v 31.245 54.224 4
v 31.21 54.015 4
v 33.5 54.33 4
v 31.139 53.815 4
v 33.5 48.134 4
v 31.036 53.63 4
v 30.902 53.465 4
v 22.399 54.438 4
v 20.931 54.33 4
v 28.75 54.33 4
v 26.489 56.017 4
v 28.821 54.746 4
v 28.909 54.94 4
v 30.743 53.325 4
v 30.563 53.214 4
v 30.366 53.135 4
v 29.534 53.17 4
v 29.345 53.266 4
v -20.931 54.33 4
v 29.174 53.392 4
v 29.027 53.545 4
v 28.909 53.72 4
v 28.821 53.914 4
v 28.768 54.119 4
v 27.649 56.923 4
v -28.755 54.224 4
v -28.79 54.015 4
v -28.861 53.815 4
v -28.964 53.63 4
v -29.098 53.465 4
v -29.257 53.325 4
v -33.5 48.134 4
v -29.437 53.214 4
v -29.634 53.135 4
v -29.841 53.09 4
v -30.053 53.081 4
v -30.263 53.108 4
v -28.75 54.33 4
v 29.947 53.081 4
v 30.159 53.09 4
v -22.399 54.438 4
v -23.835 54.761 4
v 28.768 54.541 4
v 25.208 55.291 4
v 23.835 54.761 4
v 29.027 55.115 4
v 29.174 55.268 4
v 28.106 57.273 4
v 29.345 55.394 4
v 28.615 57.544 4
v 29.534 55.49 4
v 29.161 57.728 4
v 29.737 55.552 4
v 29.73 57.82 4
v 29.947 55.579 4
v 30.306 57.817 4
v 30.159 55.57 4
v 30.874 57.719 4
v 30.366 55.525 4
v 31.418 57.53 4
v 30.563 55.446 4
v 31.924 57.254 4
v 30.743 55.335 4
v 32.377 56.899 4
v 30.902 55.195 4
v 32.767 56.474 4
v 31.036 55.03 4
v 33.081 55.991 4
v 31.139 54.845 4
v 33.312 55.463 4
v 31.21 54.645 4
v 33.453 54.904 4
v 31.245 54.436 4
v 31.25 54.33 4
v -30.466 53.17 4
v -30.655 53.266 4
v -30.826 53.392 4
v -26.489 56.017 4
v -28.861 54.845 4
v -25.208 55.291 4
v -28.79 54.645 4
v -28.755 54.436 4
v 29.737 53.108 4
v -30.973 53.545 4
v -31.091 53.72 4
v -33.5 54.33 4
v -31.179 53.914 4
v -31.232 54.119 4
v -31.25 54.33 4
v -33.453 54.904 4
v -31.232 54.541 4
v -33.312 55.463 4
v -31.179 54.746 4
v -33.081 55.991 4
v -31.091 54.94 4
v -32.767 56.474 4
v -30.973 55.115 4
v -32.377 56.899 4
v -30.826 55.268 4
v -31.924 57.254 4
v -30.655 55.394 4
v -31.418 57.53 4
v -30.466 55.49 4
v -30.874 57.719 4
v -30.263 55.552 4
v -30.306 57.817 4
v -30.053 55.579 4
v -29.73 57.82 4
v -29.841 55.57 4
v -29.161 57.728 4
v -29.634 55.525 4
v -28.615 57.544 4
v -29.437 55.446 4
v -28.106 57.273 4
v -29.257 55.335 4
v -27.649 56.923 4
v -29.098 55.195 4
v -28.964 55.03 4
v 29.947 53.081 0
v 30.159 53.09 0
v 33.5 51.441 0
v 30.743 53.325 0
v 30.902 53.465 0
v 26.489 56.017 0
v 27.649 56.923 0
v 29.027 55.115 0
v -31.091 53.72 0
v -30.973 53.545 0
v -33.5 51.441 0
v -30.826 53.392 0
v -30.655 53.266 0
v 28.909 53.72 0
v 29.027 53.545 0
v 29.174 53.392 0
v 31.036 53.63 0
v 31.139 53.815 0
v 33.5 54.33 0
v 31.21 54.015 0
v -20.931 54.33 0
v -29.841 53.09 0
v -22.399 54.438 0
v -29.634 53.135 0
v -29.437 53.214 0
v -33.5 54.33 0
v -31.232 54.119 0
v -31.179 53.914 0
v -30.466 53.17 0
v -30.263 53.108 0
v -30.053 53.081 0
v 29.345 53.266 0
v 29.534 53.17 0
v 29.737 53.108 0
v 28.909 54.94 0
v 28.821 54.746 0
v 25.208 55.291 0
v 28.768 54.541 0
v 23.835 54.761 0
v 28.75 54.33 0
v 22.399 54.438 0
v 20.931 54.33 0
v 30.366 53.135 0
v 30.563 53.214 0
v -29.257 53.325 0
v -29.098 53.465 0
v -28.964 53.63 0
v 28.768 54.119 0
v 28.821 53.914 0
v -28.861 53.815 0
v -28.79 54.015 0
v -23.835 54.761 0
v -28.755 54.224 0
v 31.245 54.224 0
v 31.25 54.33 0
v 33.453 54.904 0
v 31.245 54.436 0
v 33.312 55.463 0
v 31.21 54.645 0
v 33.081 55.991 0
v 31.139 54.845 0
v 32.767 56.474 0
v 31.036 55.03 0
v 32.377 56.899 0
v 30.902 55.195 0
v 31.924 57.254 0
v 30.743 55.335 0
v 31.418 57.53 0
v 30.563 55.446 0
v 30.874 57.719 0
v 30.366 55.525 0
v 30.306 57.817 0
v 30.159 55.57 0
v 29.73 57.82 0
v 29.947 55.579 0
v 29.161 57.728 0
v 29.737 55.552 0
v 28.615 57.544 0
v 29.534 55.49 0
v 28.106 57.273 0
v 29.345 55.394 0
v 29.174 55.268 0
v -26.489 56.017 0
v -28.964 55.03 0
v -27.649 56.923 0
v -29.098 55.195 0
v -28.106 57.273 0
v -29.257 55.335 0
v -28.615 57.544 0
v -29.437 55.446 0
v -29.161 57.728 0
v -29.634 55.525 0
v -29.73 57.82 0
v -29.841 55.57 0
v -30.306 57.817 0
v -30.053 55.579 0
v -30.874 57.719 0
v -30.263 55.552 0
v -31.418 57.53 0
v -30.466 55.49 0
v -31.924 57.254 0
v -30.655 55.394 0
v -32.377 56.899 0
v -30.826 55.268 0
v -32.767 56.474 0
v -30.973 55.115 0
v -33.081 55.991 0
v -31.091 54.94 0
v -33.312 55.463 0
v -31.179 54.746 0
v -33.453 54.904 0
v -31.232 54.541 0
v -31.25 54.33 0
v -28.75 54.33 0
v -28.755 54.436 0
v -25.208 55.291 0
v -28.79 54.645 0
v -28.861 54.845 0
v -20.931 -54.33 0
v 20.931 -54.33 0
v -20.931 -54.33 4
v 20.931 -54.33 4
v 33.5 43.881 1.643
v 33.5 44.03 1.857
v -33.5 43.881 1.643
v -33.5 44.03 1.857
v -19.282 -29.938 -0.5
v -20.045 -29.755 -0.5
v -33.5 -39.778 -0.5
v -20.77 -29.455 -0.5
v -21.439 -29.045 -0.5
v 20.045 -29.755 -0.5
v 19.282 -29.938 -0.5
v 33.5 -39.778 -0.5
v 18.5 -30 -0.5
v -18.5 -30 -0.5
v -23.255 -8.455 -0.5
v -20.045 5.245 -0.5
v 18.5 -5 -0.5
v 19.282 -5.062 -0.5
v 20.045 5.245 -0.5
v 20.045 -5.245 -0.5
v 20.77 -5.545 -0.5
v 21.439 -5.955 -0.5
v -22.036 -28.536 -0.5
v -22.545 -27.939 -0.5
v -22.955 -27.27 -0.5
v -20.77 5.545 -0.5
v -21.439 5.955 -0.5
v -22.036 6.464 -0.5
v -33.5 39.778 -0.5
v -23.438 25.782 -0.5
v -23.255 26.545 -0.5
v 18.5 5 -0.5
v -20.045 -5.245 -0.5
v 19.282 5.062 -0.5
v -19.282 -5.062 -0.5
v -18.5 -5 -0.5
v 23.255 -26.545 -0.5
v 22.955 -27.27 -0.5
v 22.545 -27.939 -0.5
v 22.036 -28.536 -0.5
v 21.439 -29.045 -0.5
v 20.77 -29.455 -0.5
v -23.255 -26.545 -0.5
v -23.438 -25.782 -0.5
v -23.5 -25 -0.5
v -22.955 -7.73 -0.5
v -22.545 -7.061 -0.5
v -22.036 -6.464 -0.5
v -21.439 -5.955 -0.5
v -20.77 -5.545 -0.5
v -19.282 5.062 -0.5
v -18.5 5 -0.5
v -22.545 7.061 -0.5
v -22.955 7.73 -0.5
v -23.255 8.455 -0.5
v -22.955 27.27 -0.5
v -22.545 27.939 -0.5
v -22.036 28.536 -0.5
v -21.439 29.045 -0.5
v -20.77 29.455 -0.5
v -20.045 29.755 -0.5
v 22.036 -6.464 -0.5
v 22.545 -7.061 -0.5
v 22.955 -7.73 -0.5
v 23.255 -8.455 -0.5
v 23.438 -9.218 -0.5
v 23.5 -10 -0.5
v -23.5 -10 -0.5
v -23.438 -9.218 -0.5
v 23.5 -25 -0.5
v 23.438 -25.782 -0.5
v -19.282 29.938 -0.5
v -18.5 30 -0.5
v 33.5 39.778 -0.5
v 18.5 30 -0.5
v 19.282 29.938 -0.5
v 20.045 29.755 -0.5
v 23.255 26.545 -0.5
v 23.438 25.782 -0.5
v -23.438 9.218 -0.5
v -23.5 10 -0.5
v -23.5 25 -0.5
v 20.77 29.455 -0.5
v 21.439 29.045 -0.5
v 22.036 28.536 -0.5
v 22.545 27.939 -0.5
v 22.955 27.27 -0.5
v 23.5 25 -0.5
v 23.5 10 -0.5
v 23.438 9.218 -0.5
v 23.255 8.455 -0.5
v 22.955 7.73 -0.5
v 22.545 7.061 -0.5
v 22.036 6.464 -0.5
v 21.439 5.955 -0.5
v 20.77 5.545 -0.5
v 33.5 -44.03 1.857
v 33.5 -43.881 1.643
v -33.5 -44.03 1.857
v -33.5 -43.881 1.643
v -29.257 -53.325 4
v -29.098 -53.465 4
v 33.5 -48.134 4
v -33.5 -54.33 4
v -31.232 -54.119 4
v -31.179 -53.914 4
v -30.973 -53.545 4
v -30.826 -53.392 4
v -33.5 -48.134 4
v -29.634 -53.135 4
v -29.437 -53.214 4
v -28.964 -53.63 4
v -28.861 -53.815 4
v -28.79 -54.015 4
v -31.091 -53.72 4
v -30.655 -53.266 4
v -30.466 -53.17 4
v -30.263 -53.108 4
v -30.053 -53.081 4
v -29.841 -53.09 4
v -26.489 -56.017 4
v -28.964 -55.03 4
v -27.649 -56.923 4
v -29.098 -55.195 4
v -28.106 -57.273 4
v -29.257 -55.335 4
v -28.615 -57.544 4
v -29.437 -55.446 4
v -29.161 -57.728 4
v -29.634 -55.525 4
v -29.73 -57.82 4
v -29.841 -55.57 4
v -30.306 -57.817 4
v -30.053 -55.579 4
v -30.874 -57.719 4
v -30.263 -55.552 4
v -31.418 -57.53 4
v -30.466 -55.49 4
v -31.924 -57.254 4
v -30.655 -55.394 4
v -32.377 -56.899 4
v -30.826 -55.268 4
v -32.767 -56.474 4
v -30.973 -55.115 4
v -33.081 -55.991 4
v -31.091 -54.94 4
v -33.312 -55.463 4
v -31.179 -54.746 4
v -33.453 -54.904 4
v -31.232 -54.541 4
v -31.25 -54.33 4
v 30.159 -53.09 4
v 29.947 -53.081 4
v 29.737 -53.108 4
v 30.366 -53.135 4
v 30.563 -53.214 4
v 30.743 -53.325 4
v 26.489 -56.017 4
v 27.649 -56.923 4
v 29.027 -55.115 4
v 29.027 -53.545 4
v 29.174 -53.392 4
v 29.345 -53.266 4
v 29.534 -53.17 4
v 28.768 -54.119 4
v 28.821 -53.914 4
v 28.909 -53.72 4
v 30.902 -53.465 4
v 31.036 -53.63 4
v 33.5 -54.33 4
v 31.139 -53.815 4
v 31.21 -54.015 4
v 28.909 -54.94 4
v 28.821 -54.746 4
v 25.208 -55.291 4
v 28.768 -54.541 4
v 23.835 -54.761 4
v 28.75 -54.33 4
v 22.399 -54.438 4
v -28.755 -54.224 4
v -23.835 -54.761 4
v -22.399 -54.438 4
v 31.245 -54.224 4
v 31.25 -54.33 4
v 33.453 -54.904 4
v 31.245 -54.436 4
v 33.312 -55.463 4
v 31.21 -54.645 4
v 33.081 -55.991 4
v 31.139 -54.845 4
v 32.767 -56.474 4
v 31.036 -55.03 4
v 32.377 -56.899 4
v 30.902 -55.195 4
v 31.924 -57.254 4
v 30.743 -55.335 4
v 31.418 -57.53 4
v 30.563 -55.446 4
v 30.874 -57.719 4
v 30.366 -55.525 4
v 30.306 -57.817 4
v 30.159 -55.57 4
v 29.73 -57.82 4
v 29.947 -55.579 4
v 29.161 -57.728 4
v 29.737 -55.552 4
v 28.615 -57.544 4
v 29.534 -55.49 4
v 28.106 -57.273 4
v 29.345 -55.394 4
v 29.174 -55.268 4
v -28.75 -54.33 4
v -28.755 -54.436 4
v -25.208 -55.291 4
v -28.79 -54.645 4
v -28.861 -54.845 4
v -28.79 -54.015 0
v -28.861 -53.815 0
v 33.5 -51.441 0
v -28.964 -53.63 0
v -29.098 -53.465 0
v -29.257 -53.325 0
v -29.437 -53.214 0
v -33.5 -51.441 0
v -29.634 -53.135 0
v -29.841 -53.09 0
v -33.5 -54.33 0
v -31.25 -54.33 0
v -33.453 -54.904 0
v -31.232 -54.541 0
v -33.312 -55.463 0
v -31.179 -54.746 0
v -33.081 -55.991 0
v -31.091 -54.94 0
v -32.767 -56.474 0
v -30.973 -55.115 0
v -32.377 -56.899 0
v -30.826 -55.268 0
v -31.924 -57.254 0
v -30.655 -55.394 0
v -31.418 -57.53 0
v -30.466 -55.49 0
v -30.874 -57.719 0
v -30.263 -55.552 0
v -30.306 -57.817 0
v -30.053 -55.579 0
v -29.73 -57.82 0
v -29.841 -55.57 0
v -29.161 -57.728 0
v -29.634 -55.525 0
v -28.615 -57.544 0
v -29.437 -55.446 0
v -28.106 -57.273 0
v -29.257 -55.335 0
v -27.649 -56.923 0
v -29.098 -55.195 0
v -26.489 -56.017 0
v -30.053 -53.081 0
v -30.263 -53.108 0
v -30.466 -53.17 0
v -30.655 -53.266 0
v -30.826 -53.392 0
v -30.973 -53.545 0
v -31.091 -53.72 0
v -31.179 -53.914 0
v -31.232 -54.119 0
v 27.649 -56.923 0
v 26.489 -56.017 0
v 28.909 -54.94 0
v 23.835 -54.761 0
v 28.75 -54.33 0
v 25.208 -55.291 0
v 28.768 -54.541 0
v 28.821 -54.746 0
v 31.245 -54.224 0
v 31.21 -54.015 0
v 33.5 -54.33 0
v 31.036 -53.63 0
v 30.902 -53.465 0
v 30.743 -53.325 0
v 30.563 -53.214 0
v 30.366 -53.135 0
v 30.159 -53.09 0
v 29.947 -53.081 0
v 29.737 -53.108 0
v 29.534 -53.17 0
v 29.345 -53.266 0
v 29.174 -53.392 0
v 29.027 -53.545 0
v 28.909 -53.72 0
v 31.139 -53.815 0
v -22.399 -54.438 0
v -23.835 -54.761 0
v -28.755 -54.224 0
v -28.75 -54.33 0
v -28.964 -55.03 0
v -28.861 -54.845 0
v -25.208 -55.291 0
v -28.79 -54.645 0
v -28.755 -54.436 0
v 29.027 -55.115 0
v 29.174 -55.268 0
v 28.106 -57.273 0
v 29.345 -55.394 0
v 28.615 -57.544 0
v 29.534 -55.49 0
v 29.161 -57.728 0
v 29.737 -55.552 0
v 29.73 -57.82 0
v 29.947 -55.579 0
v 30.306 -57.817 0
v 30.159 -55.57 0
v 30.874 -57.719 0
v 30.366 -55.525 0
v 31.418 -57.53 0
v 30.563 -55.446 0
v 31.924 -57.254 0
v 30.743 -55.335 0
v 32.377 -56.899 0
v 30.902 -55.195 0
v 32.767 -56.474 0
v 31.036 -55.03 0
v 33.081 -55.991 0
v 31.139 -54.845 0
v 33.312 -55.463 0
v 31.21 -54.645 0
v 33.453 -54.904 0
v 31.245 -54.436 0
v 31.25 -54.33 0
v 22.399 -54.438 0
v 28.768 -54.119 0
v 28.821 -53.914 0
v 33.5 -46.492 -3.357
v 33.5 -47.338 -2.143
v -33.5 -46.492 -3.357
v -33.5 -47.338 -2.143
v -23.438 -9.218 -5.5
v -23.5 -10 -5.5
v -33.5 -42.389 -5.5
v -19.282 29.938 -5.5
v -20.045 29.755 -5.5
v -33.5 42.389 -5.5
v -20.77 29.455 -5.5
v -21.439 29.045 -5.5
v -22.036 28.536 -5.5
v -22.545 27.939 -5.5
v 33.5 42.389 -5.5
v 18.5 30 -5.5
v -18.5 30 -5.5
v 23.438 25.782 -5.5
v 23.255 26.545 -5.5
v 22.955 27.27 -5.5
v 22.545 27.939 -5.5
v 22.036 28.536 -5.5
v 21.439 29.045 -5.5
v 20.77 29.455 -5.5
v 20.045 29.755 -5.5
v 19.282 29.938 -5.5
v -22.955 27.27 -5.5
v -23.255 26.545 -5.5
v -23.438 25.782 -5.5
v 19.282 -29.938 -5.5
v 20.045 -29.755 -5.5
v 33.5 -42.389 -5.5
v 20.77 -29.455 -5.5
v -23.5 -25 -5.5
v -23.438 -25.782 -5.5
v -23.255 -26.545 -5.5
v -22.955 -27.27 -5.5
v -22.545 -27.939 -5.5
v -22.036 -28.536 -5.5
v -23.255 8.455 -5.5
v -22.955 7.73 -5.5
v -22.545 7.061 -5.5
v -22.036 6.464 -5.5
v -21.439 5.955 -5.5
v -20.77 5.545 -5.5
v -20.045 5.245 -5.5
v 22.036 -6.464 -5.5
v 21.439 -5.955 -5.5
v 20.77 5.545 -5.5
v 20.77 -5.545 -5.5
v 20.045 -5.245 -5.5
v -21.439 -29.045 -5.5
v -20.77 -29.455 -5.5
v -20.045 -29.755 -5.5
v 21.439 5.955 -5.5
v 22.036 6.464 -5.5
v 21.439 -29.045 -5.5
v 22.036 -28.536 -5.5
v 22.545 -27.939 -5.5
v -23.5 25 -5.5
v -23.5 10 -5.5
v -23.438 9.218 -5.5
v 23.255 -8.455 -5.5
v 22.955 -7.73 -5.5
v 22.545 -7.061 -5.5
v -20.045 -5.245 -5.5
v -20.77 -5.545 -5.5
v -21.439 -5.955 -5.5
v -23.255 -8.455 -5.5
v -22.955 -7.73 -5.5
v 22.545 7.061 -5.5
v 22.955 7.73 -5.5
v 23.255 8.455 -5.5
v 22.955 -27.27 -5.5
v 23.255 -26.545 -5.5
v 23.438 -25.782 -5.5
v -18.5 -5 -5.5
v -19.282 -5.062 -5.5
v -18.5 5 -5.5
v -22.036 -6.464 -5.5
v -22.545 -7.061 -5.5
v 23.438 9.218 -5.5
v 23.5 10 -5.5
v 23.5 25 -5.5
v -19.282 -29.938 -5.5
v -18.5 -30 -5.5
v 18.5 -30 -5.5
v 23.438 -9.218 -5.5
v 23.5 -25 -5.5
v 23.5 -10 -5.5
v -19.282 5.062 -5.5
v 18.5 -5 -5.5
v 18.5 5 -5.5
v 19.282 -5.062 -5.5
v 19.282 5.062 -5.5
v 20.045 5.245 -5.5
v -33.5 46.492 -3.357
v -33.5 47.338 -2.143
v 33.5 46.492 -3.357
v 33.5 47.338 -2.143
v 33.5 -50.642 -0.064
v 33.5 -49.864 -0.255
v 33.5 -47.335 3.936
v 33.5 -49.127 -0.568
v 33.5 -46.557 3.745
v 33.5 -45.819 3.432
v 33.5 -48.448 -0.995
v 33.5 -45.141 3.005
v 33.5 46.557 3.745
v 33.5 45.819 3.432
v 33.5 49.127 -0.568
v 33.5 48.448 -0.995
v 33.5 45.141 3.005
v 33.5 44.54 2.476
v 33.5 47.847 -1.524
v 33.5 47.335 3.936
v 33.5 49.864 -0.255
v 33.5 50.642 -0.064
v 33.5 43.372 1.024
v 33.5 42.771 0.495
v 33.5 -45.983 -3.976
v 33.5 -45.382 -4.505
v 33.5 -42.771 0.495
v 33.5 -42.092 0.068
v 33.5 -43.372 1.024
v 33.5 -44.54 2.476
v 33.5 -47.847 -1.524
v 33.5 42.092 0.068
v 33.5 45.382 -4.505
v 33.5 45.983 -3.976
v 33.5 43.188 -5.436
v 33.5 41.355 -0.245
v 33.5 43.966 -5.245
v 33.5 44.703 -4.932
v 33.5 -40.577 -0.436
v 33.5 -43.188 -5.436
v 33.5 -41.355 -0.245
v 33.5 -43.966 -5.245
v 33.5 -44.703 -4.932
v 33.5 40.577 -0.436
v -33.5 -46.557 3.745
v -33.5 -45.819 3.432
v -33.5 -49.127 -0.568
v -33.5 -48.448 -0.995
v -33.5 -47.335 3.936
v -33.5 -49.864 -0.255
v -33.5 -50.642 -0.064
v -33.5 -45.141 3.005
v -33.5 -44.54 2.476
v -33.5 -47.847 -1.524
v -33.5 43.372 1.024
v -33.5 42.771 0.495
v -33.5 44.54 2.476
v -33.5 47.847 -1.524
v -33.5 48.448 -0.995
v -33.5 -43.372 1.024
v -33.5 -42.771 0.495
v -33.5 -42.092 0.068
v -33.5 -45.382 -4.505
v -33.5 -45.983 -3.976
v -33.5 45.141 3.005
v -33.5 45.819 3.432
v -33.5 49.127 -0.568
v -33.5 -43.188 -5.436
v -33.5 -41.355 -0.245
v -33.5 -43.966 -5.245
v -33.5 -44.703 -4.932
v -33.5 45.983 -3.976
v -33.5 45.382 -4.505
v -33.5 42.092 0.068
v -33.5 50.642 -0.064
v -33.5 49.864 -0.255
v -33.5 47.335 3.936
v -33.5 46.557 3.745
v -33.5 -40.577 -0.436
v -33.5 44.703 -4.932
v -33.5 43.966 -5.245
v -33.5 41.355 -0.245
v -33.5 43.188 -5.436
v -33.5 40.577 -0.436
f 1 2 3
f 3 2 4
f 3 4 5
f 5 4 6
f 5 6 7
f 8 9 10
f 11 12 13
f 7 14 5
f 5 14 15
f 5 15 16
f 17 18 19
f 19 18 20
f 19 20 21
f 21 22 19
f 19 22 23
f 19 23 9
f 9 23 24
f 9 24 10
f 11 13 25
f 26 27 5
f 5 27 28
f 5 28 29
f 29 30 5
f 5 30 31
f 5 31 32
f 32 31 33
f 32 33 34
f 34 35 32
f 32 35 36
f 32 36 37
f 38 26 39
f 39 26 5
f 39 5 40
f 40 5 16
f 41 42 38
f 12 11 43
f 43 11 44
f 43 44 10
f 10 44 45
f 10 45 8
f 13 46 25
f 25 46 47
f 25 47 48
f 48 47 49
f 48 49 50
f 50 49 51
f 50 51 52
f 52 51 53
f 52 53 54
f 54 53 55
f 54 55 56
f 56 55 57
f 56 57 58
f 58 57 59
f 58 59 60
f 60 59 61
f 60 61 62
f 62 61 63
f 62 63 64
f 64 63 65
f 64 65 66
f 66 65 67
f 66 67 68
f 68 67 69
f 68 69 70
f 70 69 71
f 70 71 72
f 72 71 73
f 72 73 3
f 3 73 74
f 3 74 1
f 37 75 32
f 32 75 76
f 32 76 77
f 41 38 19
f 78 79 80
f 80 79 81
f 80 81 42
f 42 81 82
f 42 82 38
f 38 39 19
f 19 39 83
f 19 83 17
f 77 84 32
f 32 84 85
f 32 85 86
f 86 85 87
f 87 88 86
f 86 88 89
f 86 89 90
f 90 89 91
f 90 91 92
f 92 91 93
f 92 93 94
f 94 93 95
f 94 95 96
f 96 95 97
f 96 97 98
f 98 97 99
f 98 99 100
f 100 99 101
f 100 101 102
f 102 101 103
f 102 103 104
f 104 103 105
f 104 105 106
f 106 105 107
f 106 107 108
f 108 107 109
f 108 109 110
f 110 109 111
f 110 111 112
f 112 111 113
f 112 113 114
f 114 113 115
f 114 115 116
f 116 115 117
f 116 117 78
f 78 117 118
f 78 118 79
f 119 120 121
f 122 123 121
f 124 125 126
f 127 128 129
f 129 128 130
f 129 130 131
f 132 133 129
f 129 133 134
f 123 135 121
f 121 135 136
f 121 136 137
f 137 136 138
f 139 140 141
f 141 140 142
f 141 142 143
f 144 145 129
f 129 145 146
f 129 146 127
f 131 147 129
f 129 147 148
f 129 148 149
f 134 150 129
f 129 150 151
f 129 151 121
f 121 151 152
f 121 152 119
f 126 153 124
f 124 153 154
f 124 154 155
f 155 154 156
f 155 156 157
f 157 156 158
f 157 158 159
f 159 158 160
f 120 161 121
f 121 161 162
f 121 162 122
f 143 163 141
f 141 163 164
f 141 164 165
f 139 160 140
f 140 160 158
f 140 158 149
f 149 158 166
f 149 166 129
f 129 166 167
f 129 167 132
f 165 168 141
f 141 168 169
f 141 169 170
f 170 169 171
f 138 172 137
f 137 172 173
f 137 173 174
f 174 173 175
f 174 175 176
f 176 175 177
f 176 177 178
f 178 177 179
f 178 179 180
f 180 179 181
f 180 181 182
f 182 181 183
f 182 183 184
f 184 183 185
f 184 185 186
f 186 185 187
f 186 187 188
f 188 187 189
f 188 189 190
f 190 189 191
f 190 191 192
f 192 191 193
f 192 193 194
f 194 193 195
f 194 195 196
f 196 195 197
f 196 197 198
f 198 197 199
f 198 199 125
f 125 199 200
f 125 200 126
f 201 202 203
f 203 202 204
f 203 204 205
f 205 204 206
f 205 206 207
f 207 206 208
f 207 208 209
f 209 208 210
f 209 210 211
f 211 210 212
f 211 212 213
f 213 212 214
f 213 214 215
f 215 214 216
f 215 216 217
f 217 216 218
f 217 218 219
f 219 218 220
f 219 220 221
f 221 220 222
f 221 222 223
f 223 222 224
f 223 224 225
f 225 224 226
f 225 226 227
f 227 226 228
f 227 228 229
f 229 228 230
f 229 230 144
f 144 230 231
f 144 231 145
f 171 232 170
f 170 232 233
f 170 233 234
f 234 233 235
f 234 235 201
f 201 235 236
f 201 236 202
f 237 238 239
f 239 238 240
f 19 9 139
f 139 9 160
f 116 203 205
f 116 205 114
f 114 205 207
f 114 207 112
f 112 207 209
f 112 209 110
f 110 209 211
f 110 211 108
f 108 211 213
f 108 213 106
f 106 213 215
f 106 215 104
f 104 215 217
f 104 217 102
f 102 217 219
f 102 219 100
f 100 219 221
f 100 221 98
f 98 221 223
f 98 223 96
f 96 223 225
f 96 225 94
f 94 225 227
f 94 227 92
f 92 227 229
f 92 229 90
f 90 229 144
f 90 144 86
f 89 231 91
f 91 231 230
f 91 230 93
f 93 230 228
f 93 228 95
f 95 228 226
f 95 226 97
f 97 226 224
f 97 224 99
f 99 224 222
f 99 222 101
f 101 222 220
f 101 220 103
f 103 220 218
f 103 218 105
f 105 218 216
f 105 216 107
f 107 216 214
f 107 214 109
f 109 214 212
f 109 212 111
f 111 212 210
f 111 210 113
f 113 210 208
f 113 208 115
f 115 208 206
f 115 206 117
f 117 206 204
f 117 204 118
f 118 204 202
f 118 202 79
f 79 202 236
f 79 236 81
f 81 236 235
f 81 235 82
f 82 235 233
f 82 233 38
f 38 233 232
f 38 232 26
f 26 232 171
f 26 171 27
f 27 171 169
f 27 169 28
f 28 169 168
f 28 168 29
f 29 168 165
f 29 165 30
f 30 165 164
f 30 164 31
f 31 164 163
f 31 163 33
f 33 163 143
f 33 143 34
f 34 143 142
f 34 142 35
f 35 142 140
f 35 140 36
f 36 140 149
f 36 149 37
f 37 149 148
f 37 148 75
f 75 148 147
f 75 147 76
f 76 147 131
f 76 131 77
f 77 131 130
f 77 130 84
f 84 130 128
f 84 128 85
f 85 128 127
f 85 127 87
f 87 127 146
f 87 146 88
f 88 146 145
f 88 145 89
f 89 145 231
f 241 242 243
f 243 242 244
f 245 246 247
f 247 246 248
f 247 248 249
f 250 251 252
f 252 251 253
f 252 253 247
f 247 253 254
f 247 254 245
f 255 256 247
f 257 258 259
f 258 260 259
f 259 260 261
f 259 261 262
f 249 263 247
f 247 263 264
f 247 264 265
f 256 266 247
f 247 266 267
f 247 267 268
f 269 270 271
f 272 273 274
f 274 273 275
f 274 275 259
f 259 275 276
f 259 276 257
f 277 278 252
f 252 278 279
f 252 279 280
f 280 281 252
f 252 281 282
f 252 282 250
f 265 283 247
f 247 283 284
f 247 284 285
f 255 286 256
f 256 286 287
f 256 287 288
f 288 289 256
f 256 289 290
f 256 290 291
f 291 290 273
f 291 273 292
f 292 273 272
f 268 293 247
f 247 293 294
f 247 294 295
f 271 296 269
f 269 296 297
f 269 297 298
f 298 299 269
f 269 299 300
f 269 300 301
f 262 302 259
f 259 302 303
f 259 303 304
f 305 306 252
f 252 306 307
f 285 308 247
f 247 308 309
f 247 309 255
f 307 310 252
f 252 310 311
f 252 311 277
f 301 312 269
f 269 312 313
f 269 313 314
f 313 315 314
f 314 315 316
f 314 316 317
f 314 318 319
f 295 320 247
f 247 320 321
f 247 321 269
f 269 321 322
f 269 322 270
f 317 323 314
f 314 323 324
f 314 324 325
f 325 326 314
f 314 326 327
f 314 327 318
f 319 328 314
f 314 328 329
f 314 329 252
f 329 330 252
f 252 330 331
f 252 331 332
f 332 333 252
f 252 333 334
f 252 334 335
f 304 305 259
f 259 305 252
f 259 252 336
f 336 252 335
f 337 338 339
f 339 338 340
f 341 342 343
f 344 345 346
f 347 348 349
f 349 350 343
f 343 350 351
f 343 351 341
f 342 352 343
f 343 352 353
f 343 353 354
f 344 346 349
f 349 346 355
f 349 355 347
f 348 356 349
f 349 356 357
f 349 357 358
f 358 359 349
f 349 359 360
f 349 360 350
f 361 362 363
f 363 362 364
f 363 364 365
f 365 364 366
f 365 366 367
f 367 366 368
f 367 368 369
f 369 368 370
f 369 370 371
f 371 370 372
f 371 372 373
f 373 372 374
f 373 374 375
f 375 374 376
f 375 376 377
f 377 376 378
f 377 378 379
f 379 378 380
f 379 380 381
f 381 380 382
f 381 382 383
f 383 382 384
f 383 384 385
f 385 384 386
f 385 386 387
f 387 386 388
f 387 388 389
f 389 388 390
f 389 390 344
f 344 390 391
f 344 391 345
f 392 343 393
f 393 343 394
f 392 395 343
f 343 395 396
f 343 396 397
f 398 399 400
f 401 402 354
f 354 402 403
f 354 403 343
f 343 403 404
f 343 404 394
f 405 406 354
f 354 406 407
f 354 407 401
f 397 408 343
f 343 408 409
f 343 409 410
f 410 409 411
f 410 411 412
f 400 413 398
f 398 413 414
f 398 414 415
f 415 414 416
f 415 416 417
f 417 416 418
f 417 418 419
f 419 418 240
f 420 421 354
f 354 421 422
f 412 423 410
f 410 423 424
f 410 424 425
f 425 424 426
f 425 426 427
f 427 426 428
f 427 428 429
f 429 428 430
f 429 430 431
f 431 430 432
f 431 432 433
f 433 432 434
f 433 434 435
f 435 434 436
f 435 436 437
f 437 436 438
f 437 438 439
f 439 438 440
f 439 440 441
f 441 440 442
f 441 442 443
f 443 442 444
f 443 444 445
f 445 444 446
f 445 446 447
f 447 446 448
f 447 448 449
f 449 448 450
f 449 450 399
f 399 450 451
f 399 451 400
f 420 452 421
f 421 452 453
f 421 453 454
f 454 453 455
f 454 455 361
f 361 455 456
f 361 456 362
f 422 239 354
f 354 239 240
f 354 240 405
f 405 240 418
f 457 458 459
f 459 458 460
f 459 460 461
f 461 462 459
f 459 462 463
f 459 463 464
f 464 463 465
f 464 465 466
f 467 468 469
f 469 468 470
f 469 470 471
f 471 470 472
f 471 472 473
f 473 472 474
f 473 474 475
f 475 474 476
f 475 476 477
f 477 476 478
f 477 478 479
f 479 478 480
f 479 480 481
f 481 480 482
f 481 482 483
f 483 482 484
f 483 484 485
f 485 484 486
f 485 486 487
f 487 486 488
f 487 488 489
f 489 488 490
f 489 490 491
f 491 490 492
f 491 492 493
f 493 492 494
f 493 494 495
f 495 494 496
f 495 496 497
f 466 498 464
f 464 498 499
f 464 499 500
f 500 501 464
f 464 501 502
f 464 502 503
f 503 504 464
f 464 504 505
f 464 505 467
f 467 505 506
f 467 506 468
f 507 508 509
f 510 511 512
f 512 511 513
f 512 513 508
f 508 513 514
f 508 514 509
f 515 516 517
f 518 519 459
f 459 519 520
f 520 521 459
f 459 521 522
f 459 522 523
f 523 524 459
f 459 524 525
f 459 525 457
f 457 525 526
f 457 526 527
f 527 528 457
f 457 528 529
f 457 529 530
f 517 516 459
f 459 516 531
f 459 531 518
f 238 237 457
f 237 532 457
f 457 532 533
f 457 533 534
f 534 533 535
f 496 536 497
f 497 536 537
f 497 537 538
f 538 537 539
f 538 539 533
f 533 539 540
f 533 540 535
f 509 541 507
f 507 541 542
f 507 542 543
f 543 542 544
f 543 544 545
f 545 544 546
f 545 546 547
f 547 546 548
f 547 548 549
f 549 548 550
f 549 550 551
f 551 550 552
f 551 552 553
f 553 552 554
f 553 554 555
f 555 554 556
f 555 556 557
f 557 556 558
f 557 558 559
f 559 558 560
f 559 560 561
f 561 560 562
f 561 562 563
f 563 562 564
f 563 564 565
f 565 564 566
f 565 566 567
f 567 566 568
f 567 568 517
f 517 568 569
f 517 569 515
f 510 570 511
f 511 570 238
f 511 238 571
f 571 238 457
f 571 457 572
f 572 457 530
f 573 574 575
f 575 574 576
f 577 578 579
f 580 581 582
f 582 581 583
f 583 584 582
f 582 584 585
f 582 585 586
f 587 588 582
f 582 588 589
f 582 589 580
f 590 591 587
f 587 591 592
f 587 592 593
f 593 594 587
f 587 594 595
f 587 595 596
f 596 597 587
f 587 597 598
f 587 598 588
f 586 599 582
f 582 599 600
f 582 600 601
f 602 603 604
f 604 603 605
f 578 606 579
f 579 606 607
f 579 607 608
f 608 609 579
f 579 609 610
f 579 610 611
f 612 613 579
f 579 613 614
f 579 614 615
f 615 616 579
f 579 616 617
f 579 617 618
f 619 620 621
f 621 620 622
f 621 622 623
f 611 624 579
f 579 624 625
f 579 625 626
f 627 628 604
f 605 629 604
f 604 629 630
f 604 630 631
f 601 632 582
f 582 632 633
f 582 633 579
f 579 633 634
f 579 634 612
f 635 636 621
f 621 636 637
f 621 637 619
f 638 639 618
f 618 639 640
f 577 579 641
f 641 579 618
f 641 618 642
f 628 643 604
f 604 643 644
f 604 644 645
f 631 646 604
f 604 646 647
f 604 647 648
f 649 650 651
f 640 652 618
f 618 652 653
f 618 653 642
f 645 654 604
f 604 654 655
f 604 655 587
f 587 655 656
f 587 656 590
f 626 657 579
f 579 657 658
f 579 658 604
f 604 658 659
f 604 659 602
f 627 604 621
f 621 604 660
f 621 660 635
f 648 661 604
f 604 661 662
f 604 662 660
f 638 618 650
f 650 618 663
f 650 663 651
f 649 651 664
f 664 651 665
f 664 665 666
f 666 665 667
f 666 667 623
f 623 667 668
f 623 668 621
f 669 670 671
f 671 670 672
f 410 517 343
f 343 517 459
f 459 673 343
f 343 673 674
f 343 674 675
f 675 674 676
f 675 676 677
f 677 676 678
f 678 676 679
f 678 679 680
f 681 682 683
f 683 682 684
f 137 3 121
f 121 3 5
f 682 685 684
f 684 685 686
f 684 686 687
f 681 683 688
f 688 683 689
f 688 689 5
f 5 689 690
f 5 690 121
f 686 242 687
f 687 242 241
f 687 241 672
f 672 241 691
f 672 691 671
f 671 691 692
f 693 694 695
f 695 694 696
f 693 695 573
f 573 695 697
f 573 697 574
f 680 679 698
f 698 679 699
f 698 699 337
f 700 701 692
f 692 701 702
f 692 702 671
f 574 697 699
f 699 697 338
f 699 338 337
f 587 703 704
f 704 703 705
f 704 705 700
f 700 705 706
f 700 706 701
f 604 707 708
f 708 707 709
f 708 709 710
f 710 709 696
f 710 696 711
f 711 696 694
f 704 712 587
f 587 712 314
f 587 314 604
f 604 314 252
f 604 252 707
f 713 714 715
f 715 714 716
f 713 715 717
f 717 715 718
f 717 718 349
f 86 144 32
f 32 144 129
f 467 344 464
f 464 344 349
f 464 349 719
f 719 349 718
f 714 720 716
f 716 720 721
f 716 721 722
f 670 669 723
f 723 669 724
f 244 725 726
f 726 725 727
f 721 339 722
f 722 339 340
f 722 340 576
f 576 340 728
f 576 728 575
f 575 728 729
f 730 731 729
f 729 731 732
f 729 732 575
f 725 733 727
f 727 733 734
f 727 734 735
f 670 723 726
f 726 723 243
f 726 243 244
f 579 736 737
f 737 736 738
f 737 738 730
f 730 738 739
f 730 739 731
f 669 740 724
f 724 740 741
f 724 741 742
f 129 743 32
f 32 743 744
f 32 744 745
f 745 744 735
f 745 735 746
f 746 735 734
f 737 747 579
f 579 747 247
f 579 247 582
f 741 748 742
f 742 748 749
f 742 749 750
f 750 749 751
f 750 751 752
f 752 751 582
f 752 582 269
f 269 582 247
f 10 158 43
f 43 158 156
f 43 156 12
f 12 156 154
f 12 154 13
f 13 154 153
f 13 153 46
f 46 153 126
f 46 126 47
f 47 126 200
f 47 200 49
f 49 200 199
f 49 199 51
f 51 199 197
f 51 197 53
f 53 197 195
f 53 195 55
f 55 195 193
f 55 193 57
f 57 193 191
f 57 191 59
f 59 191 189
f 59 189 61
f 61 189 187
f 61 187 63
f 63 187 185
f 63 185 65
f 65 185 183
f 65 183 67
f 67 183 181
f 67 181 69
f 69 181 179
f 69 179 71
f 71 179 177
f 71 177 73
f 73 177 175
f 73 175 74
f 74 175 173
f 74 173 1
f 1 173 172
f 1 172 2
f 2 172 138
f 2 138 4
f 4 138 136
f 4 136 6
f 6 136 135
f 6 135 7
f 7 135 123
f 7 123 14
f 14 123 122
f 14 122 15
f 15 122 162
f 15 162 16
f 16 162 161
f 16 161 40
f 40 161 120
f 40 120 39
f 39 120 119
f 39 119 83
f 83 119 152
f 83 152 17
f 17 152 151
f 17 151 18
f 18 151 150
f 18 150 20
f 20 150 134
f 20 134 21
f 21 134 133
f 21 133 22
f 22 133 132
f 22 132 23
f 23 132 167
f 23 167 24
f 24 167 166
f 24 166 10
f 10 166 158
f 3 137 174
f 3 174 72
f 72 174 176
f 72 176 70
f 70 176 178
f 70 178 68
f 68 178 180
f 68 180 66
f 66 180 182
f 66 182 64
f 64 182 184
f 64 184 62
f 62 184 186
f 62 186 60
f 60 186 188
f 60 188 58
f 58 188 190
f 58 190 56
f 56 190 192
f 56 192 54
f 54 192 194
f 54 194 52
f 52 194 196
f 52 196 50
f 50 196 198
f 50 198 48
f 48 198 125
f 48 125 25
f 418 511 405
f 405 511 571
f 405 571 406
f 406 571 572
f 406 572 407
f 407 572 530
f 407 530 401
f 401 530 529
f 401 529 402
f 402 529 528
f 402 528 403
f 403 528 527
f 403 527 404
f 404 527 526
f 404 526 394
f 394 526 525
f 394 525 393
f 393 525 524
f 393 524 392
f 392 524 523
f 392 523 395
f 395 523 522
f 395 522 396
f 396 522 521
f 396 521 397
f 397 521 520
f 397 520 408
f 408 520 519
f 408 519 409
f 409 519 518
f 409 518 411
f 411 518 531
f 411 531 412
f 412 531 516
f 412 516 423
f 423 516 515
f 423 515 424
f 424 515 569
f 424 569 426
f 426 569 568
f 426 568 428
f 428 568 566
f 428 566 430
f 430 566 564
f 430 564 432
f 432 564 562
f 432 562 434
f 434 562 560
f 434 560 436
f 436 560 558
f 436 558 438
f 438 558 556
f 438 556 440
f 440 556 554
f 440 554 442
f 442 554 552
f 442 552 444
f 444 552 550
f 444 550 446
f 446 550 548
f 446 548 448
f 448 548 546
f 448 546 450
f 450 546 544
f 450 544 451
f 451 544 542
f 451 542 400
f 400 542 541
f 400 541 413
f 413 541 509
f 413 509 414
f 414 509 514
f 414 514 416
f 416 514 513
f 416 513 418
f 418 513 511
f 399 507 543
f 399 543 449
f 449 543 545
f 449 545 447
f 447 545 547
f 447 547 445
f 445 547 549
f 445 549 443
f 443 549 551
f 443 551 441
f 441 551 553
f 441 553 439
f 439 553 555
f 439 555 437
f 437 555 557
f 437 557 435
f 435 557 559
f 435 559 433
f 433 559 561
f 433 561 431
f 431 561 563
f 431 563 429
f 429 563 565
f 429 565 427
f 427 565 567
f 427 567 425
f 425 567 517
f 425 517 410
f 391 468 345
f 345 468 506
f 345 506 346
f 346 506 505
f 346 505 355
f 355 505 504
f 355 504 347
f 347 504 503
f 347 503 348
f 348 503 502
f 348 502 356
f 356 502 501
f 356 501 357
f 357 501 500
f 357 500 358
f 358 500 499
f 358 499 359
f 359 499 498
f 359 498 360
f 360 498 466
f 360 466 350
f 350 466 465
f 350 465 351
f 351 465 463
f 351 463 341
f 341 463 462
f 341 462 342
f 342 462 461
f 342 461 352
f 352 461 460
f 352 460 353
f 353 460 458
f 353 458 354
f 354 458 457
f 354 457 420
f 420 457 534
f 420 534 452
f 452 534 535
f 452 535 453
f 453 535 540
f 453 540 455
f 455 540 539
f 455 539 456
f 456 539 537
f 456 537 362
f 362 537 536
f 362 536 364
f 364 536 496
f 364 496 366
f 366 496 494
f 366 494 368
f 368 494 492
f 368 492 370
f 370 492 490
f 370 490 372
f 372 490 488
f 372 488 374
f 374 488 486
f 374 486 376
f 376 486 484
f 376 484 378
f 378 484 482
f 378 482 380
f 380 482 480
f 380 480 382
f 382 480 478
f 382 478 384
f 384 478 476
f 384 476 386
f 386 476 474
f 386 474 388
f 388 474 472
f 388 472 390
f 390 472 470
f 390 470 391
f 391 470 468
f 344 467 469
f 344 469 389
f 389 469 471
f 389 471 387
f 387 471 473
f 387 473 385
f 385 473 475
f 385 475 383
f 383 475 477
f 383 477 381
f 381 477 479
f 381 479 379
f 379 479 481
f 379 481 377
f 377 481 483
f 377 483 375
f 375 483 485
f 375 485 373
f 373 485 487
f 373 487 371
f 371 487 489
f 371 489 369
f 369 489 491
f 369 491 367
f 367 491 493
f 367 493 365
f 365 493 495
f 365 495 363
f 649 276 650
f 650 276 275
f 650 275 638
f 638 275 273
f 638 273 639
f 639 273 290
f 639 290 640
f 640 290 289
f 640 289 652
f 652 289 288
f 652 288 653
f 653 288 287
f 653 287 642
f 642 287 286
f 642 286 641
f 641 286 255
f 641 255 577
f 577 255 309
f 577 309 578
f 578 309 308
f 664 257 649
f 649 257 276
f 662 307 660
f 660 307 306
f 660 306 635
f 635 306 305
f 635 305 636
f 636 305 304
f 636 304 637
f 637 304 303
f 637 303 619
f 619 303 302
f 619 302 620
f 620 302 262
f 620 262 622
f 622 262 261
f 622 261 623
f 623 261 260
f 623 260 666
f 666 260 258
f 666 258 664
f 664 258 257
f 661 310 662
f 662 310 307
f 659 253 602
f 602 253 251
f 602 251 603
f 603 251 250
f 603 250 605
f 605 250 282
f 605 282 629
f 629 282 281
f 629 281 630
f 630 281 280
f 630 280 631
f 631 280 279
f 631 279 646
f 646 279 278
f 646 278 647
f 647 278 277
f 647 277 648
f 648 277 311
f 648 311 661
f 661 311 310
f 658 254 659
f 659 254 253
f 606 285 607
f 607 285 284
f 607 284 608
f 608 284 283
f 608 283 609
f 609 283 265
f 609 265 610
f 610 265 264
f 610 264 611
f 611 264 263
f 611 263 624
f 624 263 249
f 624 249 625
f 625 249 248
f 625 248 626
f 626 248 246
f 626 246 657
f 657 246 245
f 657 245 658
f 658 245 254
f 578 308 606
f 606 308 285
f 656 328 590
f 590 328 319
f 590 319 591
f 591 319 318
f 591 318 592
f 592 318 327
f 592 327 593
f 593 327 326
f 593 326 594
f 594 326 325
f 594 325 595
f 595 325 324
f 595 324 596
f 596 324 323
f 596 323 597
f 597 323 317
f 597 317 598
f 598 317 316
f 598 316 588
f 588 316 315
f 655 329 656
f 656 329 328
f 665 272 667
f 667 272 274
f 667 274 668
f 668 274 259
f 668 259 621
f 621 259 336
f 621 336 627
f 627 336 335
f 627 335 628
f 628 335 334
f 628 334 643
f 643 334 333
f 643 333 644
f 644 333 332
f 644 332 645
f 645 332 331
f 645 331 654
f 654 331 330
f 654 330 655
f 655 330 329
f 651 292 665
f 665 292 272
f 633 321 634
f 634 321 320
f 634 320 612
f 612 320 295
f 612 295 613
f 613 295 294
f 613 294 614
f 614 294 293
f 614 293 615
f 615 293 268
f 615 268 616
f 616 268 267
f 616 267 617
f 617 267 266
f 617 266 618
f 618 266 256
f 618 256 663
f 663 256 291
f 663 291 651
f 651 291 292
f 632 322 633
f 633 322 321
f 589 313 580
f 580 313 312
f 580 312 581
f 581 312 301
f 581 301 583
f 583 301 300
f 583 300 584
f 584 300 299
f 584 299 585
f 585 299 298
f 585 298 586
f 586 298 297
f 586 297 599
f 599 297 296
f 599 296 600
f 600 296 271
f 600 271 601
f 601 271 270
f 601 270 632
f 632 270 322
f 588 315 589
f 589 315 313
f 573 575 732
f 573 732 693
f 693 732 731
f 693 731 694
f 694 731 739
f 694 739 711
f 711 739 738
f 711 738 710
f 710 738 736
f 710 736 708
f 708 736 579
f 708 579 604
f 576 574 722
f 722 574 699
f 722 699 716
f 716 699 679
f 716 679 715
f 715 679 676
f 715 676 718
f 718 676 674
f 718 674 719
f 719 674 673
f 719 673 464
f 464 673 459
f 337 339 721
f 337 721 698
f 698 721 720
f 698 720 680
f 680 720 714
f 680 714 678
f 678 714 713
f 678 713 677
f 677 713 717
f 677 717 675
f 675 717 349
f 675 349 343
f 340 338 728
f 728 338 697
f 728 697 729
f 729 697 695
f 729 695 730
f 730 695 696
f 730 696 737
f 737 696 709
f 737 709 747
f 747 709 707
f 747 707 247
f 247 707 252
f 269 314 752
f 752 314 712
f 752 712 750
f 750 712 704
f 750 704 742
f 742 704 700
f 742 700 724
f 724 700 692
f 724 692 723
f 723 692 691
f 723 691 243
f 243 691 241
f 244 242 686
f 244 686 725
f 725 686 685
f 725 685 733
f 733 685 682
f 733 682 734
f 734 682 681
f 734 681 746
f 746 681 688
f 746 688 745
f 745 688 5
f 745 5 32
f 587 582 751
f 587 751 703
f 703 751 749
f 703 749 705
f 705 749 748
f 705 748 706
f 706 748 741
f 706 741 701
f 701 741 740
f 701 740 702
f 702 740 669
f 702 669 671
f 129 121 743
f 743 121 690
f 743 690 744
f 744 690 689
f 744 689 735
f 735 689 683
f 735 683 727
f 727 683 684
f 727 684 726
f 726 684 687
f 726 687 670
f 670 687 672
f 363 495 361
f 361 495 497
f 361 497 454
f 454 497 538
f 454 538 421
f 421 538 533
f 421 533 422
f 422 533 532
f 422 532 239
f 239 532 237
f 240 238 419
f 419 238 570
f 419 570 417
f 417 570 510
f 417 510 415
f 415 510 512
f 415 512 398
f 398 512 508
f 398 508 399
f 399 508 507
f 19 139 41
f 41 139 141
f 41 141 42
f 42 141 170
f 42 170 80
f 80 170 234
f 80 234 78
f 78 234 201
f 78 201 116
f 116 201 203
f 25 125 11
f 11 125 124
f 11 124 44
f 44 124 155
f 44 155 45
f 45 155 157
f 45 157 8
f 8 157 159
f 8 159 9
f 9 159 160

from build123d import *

# Parameters (mm, degrees)
SKETCH1_R                    = 3.5
SKETCH1_R_2                  = 1.25
MOUNTING_BOSSES_DEPTH        = 4
MOUNTING_BOSSES_2_DEPTH      = 4
MOUNTING_BOSSES_3_DEPTH      = 4
MOUNTING_BOSSES_4_DEPTH      = 4
MATERIAL_BULK_DEPTH          = 33.5
SKETCH5_R                    = 1.25
MOUNT_POINT_CUT_REPEAT_DEPTH = 67
WEIGHT_RELIEF_DEPTH          = 67
FILLET2_R                    = 5
FILLET3_R                    = 10


with BuildPart() as part:
    # Sketch1 → MOUNTING BOSSES (new body)
    with BuildSketch(Plane.XY):
        with Locations((-30, 54.33)):
            Circle(SKETCH1_R)
        with Locations((-30, 54.33)):
            Circle(SKETCH1_R_2, mode=Mode.SUBTRACT)
    extrude(amount=MOUNTING_BOSSES_DEPTH)



with BuildPart() as body_2:
    # Sketch1 → MOUNTING BOSSES 2 (new body)
    with BuildSketch(Plane.XY):
        with Locations((30, 54.33)):
            Circle(SKETCH1_R)
        with Locations((30, 54.33)):
            Circle(SKETCH1_R_2, mode=Mode.SUBTRACT)
    extrude(amount=MOUNTING_BOSSES_2_DEPTH)


with BuildPart() as body_3:
    # Sketch1 → MOUNTING BOSSES 3 (new body)
    with BuildSketch(Plane.XY):
        with Locations((30, -54.33)):
            Circle(SKETCH1_R)
        with Locations((30, -54.33)):
            Circle(SKETCH1_R_2, mode=Mode.SUBTRACT)
    extrude(amount=MOUNTING_BOSSES_3_DEPTH)


with BuildPart() as body_4:
    # Sketch1 → MOUNTING BOSSES 4 (new body)
    with BuildSketch(Plane.XY):
        with Locations((-30, -54.33)):
            Circle(SKETCH1_R)
        with Locations((-30, -54.33)):
            Circle(SKETCH1_R_2, mode=Mode.SUBTRACT)
    extrude(amount=MOUNTING_BOSSES_4_DEPTH)


with BuildPart() as part_1:
    add(part.part)

    add(body_2.part)  # MATERIAL BULK merges body 2

    add(body_3.part)  # MATERIAL BULK merges body 3

    add(body_4.part)  # MATERIAL BULK merges body 4
    # Sketch4 → MATERIAL BULK (add, symmetric)
    with BuildSketch(Plane(origin=(0, 0, 0), x_dir=(0, 0, -1), z_dir=(1, 0, 0))):
        Polygon((-4, 54.33), (-4, 45.522585119), (0.5, 42.388948755), (0.5, -42.388948755), (-4, -45.522585119), (-4, -54.33), (0, -54.33), (0, -48.83), (5.5, -45), (5.5, 45), (0, 48.83), (0, 54.33), align=None)
    extrude(amount=MATERIAL_BULK_DEPTH, both=True)

    # Sketch5 → MOUNT POINT CUT REPEAT (cut)
    with BuildSketch(Plane.XY):
        with Locations((-30, 54.33)):
            Circle(SKETCH5_R)
        with Locations((30, 54.33)):
            Circle(SKETCH5_R)
        with Locations((30, -54.33)):
            Circle(SKETCH5_R)
        with Locations((-30, -54.33)):
            Circle(SKETCH5_R)
    extrude(amount=MOUNT_POINT_CUT_REPEAT_DEPTH, mode=Mode.SUBTRACT)

    # Sketch6 → WEIGHT RELIEF (cut)
    with BuildSketch(Plane.XY):
        with BuildLine():
            Line((-18.5, 30), (18.5, 30))
            ThreePointArc((18.5, 30), (22.035533906, 28.535533906), (23.5, 25))
            Line((23.5, 25), (23.5, 10))
            ThreePointArc((23.5, 10), (22.035533906, 6.464466094), (18.5, 5))
            Line((18.5, 5), (-18.5, 5))
            ThreePointArc((-18.5, 5), (-22.035533906, 6.464466094), (-23.5, 10))
            Line((-23.5, 10), (-23.5, 25))
            ThreePointArc((-23.5, 25), (-22.035533906, 28.535533906), (-18.5, 30))
        make_face()
        with BuildLine():
            Line((-18.5, -5), (18.5, -5))
            ThreePointArc((18.5, -5), (22.035533906, -6.464466094), (23.5, -10))
            Line((23.5, -10), (23.5, -25))
            ThreePointArc((23.5, -25), (22.035533906, -28.535533906), (18.5, -30))
            Line((18.5, -30), (-18.5, -30))
            ThreePointArc((-18.5, -30), (-22.035533906, -28.535533906), (-23.5, -25))
            Line((-23.5, -25), (-23.5, -10))
            ThreePointArc((-23.5, -10), (-22.035533906, -6.464466094), (-18.5, -5))
        make_face()
    extrude(amount=-WEIGHT_RELIEF_DEPTH, mode=Mode.SUBTRACT)

    # Fillet2
    fillet2_edges = [part_1.edges().sort_by_distance(p)[0] for p in [
        (0, 45.522585119, 4),
        (0, 42.388948755, -0.5),
        (0, -42.388948755, -0.5),
        (0, -45.522585119, 4),
        (0, -48.83, 0),
        (0, -45, -5.5),
        (0, 45, -5.5),
        (0, 48.83, 0),
    ]]
    fillet(fillet2_edges, radius=FILLET2_R)

    # Fillet3
    fillet3_edges = [part_1.edges().sort_by_distance(p)[0] for p in [
        (-26.5, 54.33, 2),
        (26.5, 54.33, 2),
        (26.5, -54.33, 2),
        (-26.5, -54.33, 2),
    ]]
    fillet(fillet3_edges, radius=FILLET3_R)


solid = part_1.part
